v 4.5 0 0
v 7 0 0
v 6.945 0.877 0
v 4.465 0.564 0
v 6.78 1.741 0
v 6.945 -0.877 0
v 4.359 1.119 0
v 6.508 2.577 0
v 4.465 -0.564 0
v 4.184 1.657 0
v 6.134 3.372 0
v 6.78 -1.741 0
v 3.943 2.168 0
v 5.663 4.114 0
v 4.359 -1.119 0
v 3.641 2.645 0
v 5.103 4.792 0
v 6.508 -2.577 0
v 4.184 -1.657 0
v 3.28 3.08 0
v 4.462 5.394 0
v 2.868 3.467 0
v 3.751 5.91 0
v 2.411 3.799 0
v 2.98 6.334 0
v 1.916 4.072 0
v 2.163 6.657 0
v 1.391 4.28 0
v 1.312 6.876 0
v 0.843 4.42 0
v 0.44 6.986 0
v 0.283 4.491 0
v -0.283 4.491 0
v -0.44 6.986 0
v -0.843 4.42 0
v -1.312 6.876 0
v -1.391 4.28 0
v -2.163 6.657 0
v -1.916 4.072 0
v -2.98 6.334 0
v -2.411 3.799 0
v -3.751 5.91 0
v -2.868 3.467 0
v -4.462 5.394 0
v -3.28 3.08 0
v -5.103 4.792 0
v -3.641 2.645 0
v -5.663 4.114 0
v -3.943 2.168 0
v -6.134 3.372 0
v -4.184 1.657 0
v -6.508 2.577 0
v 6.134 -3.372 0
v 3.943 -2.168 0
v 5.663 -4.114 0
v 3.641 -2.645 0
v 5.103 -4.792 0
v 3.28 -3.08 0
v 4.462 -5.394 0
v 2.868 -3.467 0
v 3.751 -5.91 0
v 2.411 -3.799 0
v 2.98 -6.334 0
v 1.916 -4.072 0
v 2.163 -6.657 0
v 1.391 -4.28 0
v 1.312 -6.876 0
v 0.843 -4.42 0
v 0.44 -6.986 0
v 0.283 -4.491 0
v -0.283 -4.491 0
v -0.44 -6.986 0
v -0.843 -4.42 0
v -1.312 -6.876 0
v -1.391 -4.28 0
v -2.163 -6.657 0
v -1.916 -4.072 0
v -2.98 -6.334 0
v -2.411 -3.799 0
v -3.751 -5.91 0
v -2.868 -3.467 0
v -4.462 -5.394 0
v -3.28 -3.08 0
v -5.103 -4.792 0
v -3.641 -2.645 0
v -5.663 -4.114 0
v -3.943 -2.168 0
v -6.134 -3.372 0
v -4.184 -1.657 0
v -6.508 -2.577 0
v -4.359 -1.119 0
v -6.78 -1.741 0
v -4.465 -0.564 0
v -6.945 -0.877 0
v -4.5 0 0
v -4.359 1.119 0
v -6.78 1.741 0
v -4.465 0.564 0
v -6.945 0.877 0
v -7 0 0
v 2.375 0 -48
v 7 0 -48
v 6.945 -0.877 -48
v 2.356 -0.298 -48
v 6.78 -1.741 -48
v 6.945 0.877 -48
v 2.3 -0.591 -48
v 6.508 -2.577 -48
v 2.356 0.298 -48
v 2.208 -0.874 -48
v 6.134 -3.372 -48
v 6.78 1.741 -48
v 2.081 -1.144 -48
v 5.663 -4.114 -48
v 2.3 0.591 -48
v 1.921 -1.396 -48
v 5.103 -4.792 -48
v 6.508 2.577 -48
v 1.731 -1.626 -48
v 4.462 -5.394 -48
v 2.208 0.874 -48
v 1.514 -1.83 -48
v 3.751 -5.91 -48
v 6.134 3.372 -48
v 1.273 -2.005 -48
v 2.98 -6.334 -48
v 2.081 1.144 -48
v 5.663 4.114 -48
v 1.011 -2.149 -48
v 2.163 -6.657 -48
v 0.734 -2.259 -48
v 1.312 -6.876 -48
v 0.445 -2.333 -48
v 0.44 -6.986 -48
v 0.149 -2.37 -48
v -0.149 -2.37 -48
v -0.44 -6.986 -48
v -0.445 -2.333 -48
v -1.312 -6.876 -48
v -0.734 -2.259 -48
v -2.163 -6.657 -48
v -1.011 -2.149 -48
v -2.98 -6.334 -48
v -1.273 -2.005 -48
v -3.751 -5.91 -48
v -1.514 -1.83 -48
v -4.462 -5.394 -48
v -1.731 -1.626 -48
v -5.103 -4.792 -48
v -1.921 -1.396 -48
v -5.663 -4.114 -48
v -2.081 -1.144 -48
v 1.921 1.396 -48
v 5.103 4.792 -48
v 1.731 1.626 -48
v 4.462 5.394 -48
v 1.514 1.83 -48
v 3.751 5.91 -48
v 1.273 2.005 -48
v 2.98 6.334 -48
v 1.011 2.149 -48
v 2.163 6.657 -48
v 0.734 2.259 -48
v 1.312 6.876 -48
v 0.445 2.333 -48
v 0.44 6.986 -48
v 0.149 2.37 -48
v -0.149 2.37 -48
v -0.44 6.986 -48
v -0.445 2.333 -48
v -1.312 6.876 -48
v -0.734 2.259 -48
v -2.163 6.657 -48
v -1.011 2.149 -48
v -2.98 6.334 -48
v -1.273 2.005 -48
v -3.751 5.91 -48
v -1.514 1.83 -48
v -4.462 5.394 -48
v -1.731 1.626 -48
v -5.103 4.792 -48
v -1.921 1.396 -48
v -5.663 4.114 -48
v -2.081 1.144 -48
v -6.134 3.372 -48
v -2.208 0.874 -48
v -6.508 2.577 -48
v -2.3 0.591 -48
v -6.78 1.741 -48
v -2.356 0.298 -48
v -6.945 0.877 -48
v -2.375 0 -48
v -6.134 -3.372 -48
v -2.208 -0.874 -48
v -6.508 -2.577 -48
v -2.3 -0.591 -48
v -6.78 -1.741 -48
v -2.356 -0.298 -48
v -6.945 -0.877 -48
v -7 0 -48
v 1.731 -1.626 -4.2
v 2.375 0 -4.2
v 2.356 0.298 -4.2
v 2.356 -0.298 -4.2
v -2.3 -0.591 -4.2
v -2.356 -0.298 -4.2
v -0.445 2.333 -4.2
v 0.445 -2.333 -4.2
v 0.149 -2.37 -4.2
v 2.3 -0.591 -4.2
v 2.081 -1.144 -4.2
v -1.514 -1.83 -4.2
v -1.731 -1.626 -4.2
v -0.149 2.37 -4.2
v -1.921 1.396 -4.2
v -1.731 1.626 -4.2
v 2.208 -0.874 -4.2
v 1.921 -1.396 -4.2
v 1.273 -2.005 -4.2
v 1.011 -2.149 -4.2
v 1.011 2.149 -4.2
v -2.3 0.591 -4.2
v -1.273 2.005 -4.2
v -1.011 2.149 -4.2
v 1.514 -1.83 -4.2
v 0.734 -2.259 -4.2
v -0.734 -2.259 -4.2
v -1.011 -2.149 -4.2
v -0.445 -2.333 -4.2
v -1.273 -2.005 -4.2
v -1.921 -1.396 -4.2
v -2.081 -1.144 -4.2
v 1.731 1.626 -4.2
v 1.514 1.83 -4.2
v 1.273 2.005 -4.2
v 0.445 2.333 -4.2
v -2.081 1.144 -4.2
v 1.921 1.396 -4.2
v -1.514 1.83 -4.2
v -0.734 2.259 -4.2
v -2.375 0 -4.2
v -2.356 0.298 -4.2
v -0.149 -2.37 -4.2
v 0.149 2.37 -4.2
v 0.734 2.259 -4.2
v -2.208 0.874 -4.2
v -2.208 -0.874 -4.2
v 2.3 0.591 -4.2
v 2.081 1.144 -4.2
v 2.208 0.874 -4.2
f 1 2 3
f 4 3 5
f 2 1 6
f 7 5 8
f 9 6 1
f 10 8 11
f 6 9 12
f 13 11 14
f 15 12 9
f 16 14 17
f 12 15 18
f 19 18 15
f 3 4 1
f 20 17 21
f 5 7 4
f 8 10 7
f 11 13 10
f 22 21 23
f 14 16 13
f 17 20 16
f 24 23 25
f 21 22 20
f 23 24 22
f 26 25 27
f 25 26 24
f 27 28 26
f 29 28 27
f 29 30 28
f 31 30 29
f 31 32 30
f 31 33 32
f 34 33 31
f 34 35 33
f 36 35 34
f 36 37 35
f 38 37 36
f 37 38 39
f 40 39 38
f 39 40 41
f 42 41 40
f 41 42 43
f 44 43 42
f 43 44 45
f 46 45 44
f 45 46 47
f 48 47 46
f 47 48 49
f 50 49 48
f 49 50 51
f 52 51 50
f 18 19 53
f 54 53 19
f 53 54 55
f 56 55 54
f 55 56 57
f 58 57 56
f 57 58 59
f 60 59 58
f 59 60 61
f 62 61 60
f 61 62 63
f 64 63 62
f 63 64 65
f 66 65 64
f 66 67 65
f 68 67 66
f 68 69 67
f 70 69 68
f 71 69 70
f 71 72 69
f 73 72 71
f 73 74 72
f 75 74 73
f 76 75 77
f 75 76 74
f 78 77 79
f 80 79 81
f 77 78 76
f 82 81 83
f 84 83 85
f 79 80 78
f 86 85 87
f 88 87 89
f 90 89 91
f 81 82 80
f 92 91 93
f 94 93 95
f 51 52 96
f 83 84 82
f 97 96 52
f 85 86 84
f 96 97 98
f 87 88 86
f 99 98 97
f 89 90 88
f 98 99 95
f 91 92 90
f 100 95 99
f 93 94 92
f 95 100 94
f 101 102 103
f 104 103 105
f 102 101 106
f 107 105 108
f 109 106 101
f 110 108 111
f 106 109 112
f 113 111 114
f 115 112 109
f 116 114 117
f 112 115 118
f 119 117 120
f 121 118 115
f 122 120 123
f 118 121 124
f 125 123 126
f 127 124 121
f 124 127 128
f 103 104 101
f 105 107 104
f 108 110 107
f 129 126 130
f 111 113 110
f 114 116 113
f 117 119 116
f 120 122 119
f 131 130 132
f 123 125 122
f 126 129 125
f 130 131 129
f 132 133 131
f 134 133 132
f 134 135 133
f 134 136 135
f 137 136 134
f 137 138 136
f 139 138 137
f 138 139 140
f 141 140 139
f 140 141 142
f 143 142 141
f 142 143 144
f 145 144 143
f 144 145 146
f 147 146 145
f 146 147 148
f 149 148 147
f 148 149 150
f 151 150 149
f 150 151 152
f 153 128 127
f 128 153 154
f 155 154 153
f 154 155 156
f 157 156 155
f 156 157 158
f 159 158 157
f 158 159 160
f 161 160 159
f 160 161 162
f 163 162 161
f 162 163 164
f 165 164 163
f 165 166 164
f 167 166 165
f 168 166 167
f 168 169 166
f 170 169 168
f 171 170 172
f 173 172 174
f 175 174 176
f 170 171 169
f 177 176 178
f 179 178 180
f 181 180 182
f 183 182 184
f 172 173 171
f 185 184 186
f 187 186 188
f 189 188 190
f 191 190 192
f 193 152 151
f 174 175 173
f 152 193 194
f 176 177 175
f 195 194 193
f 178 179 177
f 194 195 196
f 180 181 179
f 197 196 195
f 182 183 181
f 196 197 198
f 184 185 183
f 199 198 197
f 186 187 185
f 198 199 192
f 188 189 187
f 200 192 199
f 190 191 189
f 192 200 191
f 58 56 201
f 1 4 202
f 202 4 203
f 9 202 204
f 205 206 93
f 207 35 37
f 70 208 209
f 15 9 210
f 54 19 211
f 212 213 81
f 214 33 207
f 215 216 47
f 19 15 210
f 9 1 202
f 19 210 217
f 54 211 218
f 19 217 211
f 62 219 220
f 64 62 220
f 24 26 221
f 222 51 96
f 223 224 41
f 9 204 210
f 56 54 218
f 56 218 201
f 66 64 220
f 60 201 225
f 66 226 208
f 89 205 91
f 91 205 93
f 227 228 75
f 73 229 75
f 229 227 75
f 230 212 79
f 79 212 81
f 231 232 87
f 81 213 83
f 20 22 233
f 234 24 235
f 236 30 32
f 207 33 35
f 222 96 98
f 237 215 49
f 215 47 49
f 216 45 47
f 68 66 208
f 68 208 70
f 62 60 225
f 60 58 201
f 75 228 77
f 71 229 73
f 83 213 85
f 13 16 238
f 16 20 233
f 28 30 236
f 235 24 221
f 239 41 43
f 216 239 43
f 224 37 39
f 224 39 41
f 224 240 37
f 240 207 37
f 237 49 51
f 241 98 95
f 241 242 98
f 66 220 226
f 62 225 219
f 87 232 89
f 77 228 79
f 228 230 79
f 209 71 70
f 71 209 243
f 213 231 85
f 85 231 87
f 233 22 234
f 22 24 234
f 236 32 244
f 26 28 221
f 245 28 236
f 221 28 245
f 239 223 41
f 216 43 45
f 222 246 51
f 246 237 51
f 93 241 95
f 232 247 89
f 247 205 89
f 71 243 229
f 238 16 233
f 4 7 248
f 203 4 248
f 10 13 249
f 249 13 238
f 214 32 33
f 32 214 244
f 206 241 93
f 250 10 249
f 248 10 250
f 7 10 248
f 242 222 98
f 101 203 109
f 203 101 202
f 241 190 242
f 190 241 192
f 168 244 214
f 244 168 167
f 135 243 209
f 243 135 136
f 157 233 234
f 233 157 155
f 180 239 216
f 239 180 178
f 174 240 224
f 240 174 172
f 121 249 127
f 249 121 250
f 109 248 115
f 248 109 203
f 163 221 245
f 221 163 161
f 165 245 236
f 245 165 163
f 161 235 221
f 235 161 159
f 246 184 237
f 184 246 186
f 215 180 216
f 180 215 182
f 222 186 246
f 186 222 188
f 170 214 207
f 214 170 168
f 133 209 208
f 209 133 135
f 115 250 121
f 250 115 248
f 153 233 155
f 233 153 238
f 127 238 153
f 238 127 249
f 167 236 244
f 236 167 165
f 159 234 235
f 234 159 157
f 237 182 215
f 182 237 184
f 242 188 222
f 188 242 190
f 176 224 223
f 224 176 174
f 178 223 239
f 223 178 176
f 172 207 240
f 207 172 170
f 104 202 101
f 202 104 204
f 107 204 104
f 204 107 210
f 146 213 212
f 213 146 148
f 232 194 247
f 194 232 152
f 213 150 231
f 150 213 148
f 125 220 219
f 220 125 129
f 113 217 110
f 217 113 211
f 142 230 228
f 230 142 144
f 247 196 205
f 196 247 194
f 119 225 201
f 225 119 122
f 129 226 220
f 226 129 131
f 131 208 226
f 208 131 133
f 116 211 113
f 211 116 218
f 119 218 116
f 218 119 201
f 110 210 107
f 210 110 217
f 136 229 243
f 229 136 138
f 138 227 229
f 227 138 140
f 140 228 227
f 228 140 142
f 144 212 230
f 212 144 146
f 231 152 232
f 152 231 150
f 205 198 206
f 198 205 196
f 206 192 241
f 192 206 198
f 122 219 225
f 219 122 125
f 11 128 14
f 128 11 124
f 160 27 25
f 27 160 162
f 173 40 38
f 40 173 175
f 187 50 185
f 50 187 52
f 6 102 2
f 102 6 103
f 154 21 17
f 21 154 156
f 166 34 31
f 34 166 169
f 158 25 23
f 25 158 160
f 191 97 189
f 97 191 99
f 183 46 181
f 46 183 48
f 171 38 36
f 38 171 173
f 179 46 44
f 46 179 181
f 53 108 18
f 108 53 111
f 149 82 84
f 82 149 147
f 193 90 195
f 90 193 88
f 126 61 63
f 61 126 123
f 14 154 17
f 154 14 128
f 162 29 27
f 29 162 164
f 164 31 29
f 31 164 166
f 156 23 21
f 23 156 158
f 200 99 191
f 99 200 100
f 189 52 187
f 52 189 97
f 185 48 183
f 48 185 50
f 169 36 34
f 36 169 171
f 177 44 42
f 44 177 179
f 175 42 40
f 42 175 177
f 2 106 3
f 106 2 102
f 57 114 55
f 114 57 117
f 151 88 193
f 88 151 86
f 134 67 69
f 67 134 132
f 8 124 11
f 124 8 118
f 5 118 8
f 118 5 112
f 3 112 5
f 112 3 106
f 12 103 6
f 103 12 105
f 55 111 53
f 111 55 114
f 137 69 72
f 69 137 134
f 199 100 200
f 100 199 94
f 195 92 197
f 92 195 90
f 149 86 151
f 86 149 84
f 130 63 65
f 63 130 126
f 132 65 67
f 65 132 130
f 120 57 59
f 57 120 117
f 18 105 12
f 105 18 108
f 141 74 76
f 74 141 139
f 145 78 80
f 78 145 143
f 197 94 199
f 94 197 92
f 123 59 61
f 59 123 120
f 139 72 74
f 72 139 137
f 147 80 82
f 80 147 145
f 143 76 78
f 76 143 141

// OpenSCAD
$fn = 50;


difference() {
	union() {
		translate(v = [0, 0, -48.0000000000]) {
			cylinder(h = 48, r = 7.0000000000);
		}
		cylinder(h = 0, r = 16.0000000000);
	}
	union() {
		translate(v = [0, 0, 0]) {
			rotate(a = [0, 0, 0]) {
				difference() {
					union() {
						#translate(v = [0, 0, -48.0000000000]) {
							cylinder(h = 48, r = 2.2500000000);
						}
						#translate(v = [0, 0, -4.2000000000]) {
							cylinder(h = 4.2000000000, r = 7.0000000000, r1 = 2.3750000000, r2 = 4.5000000000);
						}
						#translate(v = [0, 0, -48.0000000000]) {
							cylinder(h = 48, r = 2.3750000000);
						}
						#translate(v = [0, 0, -48.0000000000]) {
							cylinder(h = 48, r = 2.2500000000);
						}
					}
					union();
				}
			}
		}
	}
}
